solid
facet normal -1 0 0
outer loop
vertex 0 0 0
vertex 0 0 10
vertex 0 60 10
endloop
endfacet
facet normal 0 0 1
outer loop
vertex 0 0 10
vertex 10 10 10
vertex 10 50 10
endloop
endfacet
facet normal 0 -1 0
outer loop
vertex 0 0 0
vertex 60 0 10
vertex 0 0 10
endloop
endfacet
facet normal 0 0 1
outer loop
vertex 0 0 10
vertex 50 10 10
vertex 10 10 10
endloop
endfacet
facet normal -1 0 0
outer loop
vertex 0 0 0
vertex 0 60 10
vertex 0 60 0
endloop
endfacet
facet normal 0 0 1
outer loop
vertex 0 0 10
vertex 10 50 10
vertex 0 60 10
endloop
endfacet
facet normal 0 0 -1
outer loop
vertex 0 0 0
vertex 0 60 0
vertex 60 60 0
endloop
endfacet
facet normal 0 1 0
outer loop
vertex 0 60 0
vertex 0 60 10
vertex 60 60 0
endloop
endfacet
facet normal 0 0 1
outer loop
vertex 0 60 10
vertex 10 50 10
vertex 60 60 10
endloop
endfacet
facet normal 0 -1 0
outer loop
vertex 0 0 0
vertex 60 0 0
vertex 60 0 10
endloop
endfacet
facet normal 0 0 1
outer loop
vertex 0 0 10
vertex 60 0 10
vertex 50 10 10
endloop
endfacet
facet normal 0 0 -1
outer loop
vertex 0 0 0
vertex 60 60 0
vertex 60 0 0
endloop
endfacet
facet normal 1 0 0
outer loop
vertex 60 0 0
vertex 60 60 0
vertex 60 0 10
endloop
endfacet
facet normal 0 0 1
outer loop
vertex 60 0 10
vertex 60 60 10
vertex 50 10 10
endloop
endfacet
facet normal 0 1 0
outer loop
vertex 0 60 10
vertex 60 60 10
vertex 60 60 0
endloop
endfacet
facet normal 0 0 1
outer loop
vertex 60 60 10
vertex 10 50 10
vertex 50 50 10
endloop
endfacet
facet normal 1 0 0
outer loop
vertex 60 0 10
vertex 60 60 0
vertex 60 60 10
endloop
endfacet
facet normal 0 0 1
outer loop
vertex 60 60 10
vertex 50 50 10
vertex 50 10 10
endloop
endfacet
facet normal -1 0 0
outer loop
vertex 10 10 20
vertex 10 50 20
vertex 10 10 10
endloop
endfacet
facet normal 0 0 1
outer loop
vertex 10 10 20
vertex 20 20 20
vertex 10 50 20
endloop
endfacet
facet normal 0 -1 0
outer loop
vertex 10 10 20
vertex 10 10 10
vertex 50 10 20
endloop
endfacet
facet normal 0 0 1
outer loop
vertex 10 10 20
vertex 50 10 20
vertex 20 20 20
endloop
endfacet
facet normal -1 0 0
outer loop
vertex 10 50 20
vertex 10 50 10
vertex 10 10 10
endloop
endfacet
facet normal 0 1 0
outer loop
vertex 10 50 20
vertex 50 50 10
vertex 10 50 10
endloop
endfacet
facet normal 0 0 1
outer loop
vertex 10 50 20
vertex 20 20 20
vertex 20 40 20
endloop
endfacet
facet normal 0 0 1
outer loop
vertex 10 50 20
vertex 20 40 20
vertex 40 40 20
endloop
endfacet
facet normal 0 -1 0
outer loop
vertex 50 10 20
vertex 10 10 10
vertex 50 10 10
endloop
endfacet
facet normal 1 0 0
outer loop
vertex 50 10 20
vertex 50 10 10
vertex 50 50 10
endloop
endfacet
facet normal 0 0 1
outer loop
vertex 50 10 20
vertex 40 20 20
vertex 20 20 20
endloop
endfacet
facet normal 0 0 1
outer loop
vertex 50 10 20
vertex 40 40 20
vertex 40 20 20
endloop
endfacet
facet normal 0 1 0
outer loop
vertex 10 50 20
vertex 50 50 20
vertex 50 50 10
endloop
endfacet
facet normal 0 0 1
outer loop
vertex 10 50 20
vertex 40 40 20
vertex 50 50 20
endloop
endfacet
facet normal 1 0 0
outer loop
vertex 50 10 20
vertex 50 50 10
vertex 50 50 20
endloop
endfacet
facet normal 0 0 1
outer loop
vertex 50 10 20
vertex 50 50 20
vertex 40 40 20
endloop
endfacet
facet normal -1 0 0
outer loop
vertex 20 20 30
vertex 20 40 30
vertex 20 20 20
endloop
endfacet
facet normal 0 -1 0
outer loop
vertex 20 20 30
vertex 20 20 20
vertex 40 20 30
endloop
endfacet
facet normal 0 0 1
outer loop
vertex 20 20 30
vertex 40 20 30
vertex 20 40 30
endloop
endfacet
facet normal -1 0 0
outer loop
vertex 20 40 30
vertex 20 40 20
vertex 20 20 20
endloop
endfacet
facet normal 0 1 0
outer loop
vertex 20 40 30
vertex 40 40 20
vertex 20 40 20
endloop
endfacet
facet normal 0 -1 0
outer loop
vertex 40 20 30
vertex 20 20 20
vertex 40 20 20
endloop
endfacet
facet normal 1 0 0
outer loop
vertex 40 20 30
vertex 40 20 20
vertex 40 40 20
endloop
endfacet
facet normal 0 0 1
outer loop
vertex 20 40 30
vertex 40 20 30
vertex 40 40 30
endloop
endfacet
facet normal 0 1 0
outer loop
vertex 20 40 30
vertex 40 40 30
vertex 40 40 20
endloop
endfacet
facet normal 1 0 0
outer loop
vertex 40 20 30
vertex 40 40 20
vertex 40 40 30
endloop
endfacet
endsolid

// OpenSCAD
// 3段の階段状ピラミッド
union() {
    // 底段
    cube([60, 60, 10], center = false);
    // 中段
    translate([(60-40)/2, (60-40)/2, 10])
        cube([40, 40, 10], center = false);
    // 上段
    translate([(60-20)/2, (60-20)/2, 20])
        cube([20, 20, 10], center = false);
}
